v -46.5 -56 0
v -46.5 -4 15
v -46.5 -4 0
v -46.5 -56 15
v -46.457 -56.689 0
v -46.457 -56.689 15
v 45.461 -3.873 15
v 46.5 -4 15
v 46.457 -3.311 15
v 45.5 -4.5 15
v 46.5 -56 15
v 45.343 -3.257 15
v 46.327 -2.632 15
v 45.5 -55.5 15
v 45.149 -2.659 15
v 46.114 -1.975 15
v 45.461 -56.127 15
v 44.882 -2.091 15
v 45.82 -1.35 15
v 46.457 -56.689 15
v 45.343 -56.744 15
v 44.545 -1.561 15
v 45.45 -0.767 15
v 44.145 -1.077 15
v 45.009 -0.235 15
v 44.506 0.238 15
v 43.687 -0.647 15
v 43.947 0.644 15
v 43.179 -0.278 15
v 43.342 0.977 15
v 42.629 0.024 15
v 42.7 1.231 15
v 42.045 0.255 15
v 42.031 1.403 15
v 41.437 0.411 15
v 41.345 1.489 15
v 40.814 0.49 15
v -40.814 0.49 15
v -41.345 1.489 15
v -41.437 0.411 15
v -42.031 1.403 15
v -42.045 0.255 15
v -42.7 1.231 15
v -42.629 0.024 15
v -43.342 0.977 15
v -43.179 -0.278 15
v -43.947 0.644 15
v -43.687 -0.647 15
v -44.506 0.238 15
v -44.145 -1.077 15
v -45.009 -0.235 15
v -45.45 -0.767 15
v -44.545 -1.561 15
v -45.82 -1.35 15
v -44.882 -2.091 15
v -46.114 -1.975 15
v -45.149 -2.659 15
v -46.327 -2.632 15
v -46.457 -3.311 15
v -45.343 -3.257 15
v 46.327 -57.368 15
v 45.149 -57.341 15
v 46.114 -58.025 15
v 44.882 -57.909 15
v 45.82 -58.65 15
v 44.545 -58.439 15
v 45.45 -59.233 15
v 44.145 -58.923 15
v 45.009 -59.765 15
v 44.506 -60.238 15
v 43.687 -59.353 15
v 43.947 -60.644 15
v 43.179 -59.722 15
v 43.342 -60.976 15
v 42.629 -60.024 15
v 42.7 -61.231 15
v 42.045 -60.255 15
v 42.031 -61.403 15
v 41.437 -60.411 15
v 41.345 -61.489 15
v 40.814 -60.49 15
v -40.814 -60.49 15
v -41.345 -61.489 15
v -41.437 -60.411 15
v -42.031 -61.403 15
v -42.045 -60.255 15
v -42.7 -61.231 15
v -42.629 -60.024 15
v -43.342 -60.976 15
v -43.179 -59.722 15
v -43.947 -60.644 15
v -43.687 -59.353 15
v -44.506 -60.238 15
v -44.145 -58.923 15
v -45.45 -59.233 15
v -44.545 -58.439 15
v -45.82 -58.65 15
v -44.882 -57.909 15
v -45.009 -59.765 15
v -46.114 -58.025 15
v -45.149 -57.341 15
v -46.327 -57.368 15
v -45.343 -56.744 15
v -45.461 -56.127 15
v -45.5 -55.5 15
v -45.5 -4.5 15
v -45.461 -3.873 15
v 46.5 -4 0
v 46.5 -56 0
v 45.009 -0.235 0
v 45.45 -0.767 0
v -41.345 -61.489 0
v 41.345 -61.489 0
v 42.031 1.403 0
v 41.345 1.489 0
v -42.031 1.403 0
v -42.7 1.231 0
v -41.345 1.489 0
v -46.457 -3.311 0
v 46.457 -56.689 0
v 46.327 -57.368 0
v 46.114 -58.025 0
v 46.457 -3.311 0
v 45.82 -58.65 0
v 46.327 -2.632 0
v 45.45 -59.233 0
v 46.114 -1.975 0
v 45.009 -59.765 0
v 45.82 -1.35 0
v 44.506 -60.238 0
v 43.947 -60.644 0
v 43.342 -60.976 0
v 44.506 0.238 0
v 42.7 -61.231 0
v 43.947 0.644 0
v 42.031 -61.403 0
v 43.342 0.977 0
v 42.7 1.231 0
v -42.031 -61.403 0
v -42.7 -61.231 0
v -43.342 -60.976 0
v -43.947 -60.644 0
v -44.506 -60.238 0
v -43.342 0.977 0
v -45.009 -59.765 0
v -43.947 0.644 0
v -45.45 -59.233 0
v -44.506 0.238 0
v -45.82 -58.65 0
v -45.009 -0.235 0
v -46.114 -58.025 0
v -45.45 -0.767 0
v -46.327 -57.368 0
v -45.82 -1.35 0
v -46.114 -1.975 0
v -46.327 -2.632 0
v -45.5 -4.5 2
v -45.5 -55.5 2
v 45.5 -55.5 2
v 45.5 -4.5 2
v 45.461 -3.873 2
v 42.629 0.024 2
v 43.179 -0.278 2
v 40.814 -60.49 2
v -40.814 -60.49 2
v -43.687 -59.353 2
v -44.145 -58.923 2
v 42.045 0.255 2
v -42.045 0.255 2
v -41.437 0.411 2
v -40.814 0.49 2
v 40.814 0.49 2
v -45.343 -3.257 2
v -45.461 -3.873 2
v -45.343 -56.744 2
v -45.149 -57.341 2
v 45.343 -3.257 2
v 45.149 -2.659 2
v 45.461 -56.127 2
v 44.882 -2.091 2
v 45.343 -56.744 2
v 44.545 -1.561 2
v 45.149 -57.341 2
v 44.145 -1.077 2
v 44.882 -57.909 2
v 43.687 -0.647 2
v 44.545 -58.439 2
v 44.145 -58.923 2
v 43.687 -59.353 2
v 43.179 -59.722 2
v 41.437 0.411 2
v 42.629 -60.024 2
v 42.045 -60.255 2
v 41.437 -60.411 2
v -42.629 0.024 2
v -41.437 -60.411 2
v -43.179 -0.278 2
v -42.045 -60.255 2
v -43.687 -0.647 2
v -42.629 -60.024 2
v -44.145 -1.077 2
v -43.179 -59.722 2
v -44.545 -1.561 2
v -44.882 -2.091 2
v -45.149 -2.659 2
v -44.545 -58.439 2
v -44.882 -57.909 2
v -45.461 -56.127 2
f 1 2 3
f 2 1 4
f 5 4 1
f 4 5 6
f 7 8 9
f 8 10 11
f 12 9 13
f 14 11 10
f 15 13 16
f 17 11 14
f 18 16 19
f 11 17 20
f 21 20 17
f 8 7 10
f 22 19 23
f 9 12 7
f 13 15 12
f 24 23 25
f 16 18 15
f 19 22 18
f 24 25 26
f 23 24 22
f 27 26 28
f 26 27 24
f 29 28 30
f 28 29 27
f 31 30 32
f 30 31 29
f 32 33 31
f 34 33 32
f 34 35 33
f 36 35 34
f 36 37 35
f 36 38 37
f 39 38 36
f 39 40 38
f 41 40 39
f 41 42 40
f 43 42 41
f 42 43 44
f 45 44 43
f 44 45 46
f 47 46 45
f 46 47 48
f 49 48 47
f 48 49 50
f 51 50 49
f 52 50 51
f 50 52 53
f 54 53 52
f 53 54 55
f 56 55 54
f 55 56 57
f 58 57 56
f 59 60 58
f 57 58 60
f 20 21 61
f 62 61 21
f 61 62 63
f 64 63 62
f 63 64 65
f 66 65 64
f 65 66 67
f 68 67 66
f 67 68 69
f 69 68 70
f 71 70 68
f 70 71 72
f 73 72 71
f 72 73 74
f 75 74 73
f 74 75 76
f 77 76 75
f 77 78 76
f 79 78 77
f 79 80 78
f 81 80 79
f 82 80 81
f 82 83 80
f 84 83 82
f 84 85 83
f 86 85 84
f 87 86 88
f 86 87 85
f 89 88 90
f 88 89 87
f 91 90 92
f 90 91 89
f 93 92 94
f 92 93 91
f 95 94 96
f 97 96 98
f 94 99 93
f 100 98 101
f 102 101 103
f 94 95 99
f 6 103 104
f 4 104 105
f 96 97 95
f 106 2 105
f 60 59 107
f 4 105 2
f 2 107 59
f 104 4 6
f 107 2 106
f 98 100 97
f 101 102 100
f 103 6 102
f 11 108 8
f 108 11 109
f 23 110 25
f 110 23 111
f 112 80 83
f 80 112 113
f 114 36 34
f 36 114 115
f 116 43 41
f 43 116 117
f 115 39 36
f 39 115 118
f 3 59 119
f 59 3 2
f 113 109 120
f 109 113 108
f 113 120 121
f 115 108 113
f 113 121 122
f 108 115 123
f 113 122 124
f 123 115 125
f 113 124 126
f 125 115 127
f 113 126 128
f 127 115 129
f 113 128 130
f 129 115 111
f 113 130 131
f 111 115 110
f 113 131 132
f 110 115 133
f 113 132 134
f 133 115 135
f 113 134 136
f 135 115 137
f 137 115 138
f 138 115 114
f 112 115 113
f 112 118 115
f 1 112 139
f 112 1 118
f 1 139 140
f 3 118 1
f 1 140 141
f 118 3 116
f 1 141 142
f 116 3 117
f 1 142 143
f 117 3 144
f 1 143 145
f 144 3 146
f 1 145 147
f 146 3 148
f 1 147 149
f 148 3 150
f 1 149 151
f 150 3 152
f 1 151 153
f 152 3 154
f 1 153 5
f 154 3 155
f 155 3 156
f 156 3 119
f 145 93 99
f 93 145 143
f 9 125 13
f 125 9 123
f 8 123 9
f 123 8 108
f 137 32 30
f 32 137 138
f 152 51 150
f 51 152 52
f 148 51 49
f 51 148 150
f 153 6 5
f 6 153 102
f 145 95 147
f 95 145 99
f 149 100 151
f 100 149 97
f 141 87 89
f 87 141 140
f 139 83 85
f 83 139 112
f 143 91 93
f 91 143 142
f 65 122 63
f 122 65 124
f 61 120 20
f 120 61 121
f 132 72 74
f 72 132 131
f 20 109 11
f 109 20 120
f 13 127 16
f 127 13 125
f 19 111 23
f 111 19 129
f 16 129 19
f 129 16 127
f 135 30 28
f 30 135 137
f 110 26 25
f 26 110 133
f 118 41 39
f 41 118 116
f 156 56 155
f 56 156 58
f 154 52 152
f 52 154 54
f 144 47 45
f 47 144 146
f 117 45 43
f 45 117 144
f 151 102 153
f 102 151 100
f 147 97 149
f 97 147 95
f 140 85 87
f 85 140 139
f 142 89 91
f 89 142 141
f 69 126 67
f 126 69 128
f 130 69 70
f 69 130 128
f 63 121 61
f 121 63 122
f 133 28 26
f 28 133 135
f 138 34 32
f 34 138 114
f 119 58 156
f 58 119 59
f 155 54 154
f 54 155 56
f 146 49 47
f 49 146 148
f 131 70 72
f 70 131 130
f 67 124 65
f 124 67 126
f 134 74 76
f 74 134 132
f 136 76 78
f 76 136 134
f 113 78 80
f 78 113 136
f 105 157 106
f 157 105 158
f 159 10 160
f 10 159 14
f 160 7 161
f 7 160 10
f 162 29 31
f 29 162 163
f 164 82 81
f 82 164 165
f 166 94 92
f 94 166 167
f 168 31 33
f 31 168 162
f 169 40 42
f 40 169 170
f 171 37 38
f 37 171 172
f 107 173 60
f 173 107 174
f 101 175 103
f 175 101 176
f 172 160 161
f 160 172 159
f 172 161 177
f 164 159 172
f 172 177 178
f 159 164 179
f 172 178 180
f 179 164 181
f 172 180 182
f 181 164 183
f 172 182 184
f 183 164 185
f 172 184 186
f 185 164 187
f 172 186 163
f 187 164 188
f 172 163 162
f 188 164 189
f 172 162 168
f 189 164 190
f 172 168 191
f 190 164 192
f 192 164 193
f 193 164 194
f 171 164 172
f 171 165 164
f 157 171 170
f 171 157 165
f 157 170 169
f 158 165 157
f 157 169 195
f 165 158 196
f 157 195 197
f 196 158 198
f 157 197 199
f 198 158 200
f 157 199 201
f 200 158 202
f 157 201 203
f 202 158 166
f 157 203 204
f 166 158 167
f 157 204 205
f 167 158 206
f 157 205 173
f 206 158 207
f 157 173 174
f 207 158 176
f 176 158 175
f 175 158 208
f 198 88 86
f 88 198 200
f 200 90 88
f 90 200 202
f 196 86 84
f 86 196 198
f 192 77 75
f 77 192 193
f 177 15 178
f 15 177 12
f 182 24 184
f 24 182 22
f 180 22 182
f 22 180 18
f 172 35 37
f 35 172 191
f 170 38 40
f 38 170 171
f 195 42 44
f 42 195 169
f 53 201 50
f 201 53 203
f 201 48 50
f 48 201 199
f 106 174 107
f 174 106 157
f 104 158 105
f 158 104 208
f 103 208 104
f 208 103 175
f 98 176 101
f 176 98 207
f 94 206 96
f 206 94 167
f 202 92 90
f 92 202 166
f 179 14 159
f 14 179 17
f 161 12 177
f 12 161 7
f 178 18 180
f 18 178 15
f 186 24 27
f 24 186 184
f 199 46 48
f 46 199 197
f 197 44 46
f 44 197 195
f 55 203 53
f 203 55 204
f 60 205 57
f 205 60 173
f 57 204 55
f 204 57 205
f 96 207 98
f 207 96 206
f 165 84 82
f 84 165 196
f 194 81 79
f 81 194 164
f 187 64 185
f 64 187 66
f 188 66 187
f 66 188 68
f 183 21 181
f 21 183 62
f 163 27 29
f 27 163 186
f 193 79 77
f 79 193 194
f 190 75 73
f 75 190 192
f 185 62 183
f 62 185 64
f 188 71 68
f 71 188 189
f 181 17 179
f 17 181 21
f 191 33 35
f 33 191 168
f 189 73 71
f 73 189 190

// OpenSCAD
$fn = 50;


difference() {
	union() {
		translate(v = [0, -30.0000000000, 0]) {
			hull() {
				translate(v = [-41.0000000000, 26.0000000000, 0]) {
					cylinder(h = 15, r = 5.5000000000);
				}
				translate(v = [41.0000000000, 26.0000000000, 0]) {
					cylinder(h = 15, r = 5.5000000000);
				}
				translate(v = [-41.0000000000, -26.0000000000, 0]) {
					cylinder(h = 15, r = 5.5000000000);
				}
				translate(v = [41.0000000000, -26.0000000000, 0]) {
					cylinder(h = 15, r = 5.5000000000);
				}
			}
		}
	}
	union() {
		translate(v = [0, -30.0000000000, 2]) {
			hull() {
				translate(v = [-40.5000000000, 25.5000000000, 0]) {
					cylinder(h = 30, r = 5);
				}
				translate(v = [40.5000000000, 25.5000000000, 0]) {
					cylinder(h = 30, r = 5);
				}
				translate(v = [-40.5000000000, -25.5000000000, 0]) {
					cylinder(h = 30, r = 5);
				}
				translate(v = [40.5000000000, -25.5000000000, 0]) {
					cylinder(h = 30, r = 5);
				}
			}
		}
	}
}
